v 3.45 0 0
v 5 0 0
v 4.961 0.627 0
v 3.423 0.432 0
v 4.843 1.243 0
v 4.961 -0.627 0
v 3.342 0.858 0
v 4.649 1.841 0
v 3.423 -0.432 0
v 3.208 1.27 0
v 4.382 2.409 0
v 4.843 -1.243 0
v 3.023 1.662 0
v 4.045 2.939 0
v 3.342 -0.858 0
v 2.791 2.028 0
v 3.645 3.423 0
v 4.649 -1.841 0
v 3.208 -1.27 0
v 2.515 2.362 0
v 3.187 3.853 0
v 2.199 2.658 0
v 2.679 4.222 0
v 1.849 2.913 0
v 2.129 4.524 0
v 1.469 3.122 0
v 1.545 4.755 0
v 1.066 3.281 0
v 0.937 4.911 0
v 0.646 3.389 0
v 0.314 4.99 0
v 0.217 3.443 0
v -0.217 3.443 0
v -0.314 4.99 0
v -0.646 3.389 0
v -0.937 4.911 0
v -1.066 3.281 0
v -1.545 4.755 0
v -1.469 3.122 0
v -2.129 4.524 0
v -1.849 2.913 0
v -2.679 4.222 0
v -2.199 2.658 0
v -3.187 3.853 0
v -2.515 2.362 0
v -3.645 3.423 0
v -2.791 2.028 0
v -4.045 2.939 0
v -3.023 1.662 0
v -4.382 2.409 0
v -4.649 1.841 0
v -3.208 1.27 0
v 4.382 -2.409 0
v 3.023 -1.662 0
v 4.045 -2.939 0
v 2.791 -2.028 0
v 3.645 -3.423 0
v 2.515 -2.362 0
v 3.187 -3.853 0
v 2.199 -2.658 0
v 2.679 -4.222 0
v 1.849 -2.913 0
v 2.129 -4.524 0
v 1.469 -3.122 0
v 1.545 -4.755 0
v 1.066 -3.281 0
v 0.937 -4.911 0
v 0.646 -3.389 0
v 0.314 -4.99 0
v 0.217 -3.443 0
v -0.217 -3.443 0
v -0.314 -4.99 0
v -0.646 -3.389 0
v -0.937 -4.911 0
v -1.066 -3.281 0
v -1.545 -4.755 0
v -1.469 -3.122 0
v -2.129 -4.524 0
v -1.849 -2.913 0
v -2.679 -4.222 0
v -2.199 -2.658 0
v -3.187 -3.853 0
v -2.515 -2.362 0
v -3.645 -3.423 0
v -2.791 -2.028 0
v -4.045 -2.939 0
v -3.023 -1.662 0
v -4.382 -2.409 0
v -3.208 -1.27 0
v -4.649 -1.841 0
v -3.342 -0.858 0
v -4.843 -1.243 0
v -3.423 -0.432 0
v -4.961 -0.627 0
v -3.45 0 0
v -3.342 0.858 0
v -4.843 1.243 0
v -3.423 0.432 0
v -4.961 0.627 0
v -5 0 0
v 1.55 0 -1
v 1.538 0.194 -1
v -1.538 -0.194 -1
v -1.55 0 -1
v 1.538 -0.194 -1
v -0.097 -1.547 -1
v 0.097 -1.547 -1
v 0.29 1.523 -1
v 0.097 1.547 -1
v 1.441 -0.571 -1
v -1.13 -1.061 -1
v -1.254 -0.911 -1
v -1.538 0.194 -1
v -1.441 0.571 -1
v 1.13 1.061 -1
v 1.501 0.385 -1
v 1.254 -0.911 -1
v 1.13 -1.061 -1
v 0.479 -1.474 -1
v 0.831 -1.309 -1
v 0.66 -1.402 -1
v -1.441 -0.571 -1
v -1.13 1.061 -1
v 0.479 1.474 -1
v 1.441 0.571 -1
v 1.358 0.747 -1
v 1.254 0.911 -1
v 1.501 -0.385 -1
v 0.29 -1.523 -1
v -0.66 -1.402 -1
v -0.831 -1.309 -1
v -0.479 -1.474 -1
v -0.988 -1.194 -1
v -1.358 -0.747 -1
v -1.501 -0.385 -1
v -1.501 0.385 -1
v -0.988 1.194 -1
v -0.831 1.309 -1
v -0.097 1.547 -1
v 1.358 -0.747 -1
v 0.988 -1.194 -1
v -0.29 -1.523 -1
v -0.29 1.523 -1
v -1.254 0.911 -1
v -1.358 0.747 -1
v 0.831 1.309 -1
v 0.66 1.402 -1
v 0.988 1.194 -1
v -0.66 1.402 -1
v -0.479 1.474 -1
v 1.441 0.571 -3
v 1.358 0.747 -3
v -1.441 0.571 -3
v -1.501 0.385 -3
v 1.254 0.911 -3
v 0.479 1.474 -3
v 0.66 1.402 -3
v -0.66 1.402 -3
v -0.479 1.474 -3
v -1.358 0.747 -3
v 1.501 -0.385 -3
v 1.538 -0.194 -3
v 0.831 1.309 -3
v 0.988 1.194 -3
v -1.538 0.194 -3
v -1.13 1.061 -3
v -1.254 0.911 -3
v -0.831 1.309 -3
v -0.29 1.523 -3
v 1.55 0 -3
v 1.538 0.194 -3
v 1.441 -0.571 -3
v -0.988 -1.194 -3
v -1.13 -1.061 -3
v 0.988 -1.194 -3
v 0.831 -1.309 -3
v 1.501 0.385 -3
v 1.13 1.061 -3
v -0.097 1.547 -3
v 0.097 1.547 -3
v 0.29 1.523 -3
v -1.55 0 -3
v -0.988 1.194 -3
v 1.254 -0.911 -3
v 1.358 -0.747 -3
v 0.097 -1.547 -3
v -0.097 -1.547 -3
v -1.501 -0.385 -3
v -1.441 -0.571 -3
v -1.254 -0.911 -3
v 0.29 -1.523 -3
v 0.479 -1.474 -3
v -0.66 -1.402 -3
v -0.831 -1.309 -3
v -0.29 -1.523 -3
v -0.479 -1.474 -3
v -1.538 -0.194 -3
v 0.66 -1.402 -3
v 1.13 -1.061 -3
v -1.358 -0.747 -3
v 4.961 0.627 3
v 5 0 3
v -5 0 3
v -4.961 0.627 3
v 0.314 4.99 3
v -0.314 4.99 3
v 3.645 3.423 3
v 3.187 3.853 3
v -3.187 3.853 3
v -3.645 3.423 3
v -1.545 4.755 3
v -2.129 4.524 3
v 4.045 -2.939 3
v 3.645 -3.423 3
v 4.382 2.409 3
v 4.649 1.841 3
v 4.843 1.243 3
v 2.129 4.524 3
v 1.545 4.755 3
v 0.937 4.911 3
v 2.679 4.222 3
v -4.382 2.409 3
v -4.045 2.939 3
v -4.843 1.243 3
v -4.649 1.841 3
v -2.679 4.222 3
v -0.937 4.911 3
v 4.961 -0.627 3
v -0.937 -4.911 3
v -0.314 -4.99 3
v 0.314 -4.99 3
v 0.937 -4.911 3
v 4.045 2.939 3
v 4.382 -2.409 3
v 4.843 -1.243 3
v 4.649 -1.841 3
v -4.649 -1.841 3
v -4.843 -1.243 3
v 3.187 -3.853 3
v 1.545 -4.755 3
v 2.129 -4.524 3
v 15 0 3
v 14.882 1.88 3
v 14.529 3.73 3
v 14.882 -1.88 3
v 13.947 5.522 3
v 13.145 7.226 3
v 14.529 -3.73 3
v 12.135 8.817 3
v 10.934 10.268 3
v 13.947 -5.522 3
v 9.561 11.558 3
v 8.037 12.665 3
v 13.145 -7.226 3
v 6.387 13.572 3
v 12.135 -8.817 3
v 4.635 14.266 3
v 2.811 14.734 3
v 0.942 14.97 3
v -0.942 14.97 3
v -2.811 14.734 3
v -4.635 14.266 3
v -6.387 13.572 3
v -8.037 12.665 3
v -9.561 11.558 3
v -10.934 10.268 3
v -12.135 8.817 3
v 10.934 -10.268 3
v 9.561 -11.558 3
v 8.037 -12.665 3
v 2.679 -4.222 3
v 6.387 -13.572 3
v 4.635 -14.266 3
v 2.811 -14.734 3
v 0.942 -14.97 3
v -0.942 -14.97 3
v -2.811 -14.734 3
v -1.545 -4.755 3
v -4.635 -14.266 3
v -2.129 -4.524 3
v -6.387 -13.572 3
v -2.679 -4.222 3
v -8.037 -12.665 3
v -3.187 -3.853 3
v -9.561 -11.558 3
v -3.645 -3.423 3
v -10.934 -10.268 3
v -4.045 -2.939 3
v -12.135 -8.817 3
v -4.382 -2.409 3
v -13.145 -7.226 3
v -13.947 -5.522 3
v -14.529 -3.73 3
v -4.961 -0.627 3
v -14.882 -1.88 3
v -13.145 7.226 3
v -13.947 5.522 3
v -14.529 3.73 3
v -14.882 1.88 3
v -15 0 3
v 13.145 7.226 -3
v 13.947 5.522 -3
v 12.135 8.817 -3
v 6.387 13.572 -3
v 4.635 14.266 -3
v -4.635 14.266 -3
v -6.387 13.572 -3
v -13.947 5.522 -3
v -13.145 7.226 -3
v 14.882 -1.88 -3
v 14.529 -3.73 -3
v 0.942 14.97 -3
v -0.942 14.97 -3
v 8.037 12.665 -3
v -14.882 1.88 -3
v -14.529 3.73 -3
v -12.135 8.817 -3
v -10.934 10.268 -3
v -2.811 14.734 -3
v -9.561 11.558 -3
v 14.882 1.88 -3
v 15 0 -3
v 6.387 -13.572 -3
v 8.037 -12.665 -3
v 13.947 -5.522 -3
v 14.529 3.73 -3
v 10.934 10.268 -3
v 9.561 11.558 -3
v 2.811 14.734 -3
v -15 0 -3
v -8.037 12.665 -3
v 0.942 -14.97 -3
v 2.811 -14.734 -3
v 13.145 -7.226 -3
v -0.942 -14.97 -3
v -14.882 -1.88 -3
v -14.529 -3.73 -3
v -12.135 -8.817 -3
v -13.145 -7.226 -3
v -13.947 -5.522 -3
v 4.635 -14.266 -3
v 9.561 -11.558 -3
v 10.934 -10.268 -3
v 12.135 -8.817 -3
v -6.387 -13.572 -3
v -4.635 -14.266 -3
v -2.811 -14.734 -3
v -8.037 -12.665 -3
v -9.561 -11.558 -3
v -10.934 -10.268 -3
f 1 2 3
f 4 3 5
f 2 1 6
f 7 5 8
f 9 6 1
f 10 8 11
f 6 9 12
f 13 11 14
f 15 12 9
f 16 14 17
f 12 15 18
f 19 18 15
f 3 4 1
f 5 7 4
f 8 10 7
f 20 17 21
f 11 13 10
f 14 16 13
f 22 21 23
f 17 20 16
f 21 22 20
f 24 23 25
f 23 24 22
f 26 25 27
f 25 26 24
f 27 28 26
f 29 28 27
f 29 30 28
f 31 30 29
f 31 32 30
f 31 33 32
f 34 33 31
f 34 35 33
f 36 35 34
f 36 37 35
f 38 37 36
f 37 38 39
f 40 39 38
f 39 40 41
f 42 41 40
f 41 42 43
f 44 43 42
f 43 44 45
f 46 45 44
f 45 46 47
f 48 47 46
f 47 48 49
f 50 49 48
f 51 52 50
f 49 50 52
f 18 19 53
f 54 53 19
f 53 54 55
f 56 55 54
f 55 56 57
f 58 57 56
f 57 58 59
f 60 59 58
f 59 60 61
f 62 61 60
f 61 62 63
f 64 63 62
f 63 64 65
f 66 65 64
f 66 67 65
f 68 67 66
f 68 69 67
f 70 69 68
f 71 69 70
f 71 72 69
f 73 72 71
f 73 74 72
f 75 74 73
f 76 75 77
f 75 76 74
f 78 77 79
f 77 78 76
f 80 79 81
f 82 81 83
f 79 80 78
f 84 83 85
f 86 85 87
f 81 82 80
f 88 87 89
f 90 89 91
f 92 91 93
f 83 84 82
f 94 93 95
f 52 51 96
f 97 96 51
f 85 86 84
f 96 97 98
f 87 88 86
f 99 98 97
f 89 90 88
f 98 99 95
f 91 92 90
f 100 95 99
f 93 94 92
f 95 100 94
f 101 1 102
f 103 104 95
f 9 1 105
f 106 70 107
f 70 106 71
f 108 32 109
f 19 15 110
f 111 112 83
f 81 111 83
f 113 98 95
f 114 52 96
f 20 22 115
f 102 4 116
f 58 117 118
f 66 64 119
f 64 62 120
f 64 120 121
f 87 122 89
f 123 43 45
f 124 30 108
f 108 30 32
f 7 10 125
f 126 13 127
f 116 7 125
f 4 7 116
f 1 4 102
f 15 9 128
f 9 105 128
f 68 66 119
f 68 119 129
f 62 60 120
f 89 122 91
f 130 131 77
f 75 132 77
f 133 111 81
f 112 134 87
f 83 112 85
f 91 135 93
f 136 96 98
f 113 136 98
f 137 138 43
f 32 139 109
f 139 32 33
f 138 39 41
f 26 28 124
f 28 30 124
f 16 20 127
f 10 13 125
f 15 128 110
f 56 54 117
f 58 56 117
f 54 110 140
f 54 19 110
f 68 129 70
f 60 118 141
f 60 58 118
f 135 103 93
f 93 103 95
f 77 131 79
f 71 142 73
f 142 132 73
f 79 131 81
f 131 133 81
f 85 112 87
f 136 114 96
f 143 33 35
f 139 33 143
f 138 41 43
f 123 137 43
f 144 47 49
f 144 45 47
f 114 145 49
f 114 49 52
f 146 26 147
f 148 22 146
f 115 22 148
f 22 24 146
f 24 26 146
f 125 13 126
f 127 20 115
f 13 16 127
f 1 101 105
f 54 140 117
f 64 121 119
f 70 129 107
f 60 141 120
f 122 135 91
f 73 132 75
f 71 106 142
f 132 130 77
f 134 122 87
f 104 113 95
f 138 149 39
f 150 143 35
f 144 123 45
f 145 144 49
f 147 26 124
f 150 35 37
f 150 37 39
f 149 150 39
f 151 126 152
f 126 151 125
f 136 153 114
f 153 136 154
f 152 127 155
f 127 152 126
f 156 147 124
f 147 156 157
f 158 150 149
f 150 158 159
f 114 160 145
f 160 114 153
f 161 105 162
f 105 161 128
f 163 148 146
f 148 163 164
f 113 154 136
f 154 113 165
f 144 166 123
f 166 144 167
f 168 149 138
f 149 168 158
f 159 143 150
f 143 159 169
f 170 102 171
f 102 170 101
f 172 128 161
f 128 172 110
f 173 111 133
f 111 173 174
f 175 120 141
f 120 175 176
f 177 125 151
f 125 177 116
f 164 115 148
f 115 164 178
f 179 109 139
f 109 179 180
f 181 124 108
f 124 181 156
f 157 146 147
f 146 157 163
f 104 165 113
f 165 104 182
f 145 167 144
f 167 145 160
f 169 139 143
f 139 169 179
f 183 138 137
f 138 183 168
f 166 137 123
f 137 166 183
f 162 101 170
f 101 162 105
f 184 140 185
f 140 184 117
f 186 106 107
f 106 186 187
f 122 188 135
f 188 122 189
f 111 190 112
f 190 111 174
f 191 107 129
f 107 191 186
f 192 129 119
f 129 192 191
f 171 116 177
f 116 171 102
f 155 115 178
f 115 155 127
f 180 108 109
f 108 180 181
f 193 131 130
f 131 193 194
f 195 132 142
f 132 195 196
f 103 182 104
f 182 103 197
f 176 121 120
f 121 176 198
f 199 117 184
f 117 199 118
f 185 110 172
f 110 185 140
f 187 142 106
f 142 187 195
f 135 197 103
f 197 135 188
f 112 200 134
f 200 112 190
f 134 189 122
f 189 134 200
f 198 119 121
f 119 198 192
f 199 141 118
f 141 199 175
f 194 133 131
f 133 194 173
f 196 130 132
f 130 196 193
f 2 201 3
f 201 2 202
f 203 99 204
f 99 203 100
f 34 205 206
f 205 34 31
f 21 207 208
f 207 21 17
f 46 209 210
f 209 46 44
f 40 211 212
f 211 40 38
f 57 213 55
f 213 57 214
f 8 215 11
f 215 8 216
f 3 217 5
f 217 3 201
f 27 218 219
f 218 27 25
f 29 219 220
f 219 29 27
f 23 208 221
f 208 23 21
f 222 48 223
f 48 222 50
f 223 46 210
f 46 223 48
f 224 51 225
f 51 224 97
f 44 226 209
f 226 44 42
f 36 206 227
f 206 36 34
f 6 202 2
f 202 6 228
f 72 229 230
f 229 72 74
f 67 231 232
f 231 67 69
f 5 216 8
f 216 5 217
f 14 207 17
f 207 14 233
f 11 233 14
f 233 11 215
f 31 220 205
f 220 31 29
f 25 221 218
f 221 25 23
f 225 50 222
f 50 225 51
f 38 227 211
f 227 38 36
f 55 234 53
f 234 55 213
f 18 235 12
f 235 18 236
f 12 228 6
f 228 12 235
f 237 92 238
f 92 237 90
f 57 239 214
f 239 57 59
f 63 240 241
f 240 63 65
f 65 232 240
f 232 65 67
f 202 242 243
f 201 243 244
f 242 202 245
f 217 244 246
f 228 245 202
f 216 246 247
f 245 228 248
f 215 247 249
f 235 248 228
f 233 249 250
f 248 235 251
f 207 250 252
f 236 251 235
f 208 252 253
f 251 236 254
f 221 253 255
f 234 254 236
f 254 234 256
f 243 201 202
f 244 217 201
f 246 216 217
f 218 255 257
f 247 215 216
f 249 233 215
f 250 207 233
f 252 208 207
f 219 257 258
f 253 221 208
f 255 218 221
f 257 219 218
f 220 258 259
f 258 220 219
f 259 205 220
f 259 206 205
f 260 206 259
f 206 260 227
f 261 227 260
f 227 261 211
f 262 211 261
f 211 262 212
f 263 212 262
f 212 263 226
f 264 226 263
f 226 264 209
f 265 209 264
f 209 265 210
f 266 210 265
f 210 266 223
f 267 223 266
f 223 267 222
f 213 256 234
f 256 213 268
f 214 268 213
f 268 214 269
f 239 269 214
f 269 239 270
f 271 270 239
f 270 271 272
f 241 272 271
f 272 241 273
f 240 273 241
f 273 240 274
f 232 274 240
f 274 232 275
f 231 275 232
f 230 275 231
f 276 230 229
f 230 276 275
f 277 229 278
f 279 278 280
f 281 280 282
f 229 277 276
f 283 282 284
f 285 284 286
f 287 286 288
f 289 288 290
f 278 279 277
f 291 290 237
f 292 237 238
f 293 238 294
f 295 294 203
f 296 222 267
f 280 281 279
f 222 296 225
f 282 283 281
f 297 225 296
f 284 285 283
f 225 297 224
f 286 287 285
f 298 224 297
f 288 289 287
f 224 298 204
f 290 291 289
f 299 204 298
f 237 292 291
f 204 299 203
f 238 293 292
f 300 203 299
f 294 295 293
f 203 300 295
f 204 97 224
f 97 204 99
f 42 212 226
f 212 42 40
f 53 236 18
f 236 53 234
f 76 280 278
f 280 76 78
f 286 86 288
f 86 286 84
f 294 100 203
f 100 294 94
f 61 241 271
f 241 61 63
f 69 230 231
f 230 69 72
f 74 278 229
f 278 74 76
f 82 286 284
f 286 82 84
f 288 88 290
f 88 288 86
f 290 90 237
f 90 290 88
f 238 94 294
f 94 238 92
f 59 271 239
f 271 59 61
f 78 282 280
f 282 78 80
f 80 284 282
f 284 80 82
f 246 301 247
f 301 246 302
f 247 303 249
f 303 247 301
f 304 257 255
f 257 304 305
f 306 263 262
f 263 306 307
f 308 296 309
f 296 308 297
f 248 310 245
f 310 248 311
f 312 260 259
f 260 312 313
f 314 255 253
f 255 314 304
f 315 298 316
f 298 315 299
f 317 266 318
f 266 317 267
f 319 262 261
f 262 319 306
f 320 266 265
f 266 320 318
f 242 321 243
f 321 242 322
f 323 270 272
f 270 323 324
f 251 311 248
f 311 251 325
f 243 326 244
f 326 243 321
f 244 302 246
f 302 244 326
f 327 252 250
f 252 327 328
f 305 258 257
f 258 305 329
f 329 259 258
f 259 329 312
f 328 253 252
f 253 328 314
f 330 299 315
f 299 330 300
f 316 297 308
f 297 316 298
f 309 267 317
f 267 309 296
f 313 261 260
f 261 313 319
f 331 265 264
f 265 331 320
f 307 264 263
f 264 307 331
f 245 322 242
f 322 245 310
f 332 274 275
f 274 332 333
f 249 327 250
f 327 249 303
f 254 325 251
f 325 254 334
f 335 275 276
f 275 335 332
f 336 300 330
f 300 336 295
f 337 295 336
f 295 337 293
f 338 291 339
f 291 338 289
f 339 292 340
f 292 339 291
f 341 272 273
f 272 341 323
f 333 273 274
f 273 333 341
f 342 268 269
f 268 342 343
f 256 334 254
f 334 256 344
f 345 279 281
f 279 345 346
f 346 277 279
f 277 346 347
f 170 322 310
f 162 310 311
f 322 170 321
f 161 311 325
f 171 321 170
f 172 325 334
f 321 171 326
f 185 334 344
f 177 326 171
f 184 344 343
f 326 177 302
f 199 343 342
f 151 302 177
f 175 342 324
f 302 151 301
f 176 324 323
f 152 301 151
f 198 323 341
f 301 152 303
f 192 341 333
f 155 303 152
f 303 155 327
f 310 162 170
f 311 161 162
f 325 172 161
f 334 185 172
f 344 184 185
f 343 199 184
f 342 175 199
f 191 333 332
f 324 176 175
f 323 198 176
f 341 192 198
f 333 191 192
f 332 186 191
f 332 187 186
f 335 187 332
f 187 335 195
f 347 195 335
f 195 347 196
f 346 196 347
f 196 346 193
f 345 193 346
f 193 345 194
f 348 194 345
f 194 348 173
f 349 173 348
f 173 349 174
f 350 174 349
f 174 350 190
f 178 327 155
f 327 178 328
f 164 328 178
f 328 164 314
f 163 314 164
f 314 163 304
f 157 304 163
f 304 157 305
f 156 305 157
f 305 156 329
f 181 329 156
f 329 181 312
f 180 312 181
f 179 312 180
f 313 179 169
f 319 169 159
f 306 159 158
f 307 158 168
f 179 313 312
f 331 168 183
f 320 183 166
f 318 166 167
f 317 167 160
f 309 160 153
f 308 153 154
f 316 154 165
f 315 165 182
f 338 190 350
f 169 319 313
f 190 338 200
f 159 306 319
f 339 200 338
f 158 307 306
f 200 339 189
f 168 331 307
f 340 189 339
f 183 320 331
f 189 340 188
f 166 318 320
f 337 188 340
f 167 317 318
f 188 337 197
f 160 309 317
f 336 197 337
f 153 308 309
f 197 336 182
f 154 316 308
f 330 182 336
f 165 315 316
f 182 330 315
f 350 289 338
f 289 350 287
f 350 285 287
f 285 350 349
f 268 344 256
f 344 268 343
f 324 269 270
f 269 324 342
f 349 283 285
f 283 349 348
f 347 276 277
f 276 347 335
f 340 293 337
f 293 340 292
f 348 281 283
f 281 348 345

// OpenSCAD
$fn = 50;

difference() {
	union() {
		translate(v = [0, 0, -3.0]) {
			cylinder(h = 6, r = 15.0);
		}
	}
	union() {
		translate(v = [0, 0, 0]) {
			rotate(a = [0, 0, 0]) {
				difference() {
					union() {
						translate(v = [0, 0, -6.0]) {
							cylinder(h = 6, r = 1.25);
						}
						translate(v = [0, 0, -1.0]) {
							cylinder(h = 1.0, r1 = 1.55, r2 = 3.45);
						}
						translate(v = [0, 0, -6.0]) {
							cylinder(h = 6, r = 1.55);
						}
						translate(v = [0, 0, -6.0]) {
							cylinder(h = 6, r = 1.25);
						}
					}
					union();
				}
			}
		}
		#cylinder(h = 3, r = 5.0);
	}
}
